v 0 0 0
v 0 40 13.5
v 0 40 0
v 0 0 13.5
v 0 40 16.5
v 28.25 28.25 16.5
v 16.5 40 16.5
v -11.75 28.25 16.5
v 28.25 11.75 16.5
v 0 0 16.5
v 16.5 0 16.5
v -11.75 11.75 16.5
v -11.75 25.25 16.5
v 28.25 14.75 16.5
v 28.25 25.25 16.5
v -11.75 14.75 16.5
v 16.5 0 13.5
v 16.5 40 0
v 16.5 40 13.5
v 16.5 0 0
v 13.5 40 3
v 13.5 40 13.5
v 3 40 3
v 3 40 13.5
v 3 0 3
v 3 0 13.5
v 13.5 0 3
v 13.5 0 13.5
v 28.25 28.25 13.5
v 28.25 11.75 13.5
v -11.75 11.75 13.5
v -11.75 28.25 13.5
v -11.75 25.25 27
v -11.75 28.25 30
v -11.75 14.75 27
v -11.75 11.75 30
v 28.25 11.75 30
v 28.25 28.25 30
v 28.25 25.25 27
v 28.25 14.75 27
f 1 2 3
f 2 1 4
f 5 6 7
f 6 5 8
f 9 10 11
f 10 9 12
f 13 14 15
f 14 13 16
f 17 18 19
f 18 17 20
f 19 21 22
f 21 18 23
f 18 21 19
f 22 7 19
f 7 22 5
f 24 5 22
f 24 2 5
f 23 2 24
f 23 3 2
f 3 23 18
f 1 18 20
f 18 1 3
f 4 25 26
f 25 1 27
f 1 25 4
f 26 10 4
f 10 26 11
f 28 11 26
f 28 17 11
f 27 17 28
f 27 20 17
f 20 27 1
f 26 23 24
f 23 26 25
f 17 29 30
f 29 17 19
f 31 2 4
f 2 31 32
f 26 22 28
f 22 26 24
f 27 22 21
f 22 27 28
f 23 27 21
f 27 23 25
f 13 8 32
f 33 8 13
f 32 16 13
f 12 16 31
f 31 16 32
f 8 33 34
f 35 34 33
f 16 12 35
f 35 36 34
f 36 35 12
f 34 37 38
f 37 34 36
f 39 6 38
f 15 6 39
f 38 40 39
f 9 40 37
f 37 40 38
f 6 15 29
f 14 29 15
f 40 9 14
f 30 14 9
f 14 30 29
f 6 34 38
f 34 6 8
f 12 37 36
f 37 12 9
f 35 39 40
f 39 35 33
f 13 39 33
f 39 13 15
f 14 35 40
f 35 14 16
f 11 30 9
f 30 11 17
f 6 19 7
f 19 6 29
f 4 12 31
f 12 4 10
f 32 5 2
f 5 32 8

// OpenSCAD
ml = 40;
thick = 3;
d = 10.5;
a = 38.5;

difference() {
    cube([d + 2 * thick, ml, d + 2 * thick]);
    translate([thick, -0.1, thick]) cube([d, ml + 0.2, d]);  
}
translate([(d - ml)/2 + thick, (ml - d)/2 - thick, d + thick]) 
    difference() {
        cube([ml, d + 2 * thick, d + 2 * thick]);
        translate([-0.1, thick, thick]) cube([ml + 0.2, d, d]);  
    }
translate([0, 0, d + thick]) linear_extrude(height = thick)
    polygon(points = [[0, 0], [(d - ml)/2 + thick, (ml - d)/2 - thick],
        [(d - ml)/2 + thick, (ml + d)/2 + thick],
        [0, ml], [d + 2 * thick, ml],
        [(ml + d) / 2 + thick, (ml + d) / 2 + thick],
        [(ml + d) / 2 + thick, (ml - d) / 2 - thick],
        [d + 2 * thick, 0]],
        paths = [[0, 1, 2, 3, 4, 5, 6, 7]]);
   
